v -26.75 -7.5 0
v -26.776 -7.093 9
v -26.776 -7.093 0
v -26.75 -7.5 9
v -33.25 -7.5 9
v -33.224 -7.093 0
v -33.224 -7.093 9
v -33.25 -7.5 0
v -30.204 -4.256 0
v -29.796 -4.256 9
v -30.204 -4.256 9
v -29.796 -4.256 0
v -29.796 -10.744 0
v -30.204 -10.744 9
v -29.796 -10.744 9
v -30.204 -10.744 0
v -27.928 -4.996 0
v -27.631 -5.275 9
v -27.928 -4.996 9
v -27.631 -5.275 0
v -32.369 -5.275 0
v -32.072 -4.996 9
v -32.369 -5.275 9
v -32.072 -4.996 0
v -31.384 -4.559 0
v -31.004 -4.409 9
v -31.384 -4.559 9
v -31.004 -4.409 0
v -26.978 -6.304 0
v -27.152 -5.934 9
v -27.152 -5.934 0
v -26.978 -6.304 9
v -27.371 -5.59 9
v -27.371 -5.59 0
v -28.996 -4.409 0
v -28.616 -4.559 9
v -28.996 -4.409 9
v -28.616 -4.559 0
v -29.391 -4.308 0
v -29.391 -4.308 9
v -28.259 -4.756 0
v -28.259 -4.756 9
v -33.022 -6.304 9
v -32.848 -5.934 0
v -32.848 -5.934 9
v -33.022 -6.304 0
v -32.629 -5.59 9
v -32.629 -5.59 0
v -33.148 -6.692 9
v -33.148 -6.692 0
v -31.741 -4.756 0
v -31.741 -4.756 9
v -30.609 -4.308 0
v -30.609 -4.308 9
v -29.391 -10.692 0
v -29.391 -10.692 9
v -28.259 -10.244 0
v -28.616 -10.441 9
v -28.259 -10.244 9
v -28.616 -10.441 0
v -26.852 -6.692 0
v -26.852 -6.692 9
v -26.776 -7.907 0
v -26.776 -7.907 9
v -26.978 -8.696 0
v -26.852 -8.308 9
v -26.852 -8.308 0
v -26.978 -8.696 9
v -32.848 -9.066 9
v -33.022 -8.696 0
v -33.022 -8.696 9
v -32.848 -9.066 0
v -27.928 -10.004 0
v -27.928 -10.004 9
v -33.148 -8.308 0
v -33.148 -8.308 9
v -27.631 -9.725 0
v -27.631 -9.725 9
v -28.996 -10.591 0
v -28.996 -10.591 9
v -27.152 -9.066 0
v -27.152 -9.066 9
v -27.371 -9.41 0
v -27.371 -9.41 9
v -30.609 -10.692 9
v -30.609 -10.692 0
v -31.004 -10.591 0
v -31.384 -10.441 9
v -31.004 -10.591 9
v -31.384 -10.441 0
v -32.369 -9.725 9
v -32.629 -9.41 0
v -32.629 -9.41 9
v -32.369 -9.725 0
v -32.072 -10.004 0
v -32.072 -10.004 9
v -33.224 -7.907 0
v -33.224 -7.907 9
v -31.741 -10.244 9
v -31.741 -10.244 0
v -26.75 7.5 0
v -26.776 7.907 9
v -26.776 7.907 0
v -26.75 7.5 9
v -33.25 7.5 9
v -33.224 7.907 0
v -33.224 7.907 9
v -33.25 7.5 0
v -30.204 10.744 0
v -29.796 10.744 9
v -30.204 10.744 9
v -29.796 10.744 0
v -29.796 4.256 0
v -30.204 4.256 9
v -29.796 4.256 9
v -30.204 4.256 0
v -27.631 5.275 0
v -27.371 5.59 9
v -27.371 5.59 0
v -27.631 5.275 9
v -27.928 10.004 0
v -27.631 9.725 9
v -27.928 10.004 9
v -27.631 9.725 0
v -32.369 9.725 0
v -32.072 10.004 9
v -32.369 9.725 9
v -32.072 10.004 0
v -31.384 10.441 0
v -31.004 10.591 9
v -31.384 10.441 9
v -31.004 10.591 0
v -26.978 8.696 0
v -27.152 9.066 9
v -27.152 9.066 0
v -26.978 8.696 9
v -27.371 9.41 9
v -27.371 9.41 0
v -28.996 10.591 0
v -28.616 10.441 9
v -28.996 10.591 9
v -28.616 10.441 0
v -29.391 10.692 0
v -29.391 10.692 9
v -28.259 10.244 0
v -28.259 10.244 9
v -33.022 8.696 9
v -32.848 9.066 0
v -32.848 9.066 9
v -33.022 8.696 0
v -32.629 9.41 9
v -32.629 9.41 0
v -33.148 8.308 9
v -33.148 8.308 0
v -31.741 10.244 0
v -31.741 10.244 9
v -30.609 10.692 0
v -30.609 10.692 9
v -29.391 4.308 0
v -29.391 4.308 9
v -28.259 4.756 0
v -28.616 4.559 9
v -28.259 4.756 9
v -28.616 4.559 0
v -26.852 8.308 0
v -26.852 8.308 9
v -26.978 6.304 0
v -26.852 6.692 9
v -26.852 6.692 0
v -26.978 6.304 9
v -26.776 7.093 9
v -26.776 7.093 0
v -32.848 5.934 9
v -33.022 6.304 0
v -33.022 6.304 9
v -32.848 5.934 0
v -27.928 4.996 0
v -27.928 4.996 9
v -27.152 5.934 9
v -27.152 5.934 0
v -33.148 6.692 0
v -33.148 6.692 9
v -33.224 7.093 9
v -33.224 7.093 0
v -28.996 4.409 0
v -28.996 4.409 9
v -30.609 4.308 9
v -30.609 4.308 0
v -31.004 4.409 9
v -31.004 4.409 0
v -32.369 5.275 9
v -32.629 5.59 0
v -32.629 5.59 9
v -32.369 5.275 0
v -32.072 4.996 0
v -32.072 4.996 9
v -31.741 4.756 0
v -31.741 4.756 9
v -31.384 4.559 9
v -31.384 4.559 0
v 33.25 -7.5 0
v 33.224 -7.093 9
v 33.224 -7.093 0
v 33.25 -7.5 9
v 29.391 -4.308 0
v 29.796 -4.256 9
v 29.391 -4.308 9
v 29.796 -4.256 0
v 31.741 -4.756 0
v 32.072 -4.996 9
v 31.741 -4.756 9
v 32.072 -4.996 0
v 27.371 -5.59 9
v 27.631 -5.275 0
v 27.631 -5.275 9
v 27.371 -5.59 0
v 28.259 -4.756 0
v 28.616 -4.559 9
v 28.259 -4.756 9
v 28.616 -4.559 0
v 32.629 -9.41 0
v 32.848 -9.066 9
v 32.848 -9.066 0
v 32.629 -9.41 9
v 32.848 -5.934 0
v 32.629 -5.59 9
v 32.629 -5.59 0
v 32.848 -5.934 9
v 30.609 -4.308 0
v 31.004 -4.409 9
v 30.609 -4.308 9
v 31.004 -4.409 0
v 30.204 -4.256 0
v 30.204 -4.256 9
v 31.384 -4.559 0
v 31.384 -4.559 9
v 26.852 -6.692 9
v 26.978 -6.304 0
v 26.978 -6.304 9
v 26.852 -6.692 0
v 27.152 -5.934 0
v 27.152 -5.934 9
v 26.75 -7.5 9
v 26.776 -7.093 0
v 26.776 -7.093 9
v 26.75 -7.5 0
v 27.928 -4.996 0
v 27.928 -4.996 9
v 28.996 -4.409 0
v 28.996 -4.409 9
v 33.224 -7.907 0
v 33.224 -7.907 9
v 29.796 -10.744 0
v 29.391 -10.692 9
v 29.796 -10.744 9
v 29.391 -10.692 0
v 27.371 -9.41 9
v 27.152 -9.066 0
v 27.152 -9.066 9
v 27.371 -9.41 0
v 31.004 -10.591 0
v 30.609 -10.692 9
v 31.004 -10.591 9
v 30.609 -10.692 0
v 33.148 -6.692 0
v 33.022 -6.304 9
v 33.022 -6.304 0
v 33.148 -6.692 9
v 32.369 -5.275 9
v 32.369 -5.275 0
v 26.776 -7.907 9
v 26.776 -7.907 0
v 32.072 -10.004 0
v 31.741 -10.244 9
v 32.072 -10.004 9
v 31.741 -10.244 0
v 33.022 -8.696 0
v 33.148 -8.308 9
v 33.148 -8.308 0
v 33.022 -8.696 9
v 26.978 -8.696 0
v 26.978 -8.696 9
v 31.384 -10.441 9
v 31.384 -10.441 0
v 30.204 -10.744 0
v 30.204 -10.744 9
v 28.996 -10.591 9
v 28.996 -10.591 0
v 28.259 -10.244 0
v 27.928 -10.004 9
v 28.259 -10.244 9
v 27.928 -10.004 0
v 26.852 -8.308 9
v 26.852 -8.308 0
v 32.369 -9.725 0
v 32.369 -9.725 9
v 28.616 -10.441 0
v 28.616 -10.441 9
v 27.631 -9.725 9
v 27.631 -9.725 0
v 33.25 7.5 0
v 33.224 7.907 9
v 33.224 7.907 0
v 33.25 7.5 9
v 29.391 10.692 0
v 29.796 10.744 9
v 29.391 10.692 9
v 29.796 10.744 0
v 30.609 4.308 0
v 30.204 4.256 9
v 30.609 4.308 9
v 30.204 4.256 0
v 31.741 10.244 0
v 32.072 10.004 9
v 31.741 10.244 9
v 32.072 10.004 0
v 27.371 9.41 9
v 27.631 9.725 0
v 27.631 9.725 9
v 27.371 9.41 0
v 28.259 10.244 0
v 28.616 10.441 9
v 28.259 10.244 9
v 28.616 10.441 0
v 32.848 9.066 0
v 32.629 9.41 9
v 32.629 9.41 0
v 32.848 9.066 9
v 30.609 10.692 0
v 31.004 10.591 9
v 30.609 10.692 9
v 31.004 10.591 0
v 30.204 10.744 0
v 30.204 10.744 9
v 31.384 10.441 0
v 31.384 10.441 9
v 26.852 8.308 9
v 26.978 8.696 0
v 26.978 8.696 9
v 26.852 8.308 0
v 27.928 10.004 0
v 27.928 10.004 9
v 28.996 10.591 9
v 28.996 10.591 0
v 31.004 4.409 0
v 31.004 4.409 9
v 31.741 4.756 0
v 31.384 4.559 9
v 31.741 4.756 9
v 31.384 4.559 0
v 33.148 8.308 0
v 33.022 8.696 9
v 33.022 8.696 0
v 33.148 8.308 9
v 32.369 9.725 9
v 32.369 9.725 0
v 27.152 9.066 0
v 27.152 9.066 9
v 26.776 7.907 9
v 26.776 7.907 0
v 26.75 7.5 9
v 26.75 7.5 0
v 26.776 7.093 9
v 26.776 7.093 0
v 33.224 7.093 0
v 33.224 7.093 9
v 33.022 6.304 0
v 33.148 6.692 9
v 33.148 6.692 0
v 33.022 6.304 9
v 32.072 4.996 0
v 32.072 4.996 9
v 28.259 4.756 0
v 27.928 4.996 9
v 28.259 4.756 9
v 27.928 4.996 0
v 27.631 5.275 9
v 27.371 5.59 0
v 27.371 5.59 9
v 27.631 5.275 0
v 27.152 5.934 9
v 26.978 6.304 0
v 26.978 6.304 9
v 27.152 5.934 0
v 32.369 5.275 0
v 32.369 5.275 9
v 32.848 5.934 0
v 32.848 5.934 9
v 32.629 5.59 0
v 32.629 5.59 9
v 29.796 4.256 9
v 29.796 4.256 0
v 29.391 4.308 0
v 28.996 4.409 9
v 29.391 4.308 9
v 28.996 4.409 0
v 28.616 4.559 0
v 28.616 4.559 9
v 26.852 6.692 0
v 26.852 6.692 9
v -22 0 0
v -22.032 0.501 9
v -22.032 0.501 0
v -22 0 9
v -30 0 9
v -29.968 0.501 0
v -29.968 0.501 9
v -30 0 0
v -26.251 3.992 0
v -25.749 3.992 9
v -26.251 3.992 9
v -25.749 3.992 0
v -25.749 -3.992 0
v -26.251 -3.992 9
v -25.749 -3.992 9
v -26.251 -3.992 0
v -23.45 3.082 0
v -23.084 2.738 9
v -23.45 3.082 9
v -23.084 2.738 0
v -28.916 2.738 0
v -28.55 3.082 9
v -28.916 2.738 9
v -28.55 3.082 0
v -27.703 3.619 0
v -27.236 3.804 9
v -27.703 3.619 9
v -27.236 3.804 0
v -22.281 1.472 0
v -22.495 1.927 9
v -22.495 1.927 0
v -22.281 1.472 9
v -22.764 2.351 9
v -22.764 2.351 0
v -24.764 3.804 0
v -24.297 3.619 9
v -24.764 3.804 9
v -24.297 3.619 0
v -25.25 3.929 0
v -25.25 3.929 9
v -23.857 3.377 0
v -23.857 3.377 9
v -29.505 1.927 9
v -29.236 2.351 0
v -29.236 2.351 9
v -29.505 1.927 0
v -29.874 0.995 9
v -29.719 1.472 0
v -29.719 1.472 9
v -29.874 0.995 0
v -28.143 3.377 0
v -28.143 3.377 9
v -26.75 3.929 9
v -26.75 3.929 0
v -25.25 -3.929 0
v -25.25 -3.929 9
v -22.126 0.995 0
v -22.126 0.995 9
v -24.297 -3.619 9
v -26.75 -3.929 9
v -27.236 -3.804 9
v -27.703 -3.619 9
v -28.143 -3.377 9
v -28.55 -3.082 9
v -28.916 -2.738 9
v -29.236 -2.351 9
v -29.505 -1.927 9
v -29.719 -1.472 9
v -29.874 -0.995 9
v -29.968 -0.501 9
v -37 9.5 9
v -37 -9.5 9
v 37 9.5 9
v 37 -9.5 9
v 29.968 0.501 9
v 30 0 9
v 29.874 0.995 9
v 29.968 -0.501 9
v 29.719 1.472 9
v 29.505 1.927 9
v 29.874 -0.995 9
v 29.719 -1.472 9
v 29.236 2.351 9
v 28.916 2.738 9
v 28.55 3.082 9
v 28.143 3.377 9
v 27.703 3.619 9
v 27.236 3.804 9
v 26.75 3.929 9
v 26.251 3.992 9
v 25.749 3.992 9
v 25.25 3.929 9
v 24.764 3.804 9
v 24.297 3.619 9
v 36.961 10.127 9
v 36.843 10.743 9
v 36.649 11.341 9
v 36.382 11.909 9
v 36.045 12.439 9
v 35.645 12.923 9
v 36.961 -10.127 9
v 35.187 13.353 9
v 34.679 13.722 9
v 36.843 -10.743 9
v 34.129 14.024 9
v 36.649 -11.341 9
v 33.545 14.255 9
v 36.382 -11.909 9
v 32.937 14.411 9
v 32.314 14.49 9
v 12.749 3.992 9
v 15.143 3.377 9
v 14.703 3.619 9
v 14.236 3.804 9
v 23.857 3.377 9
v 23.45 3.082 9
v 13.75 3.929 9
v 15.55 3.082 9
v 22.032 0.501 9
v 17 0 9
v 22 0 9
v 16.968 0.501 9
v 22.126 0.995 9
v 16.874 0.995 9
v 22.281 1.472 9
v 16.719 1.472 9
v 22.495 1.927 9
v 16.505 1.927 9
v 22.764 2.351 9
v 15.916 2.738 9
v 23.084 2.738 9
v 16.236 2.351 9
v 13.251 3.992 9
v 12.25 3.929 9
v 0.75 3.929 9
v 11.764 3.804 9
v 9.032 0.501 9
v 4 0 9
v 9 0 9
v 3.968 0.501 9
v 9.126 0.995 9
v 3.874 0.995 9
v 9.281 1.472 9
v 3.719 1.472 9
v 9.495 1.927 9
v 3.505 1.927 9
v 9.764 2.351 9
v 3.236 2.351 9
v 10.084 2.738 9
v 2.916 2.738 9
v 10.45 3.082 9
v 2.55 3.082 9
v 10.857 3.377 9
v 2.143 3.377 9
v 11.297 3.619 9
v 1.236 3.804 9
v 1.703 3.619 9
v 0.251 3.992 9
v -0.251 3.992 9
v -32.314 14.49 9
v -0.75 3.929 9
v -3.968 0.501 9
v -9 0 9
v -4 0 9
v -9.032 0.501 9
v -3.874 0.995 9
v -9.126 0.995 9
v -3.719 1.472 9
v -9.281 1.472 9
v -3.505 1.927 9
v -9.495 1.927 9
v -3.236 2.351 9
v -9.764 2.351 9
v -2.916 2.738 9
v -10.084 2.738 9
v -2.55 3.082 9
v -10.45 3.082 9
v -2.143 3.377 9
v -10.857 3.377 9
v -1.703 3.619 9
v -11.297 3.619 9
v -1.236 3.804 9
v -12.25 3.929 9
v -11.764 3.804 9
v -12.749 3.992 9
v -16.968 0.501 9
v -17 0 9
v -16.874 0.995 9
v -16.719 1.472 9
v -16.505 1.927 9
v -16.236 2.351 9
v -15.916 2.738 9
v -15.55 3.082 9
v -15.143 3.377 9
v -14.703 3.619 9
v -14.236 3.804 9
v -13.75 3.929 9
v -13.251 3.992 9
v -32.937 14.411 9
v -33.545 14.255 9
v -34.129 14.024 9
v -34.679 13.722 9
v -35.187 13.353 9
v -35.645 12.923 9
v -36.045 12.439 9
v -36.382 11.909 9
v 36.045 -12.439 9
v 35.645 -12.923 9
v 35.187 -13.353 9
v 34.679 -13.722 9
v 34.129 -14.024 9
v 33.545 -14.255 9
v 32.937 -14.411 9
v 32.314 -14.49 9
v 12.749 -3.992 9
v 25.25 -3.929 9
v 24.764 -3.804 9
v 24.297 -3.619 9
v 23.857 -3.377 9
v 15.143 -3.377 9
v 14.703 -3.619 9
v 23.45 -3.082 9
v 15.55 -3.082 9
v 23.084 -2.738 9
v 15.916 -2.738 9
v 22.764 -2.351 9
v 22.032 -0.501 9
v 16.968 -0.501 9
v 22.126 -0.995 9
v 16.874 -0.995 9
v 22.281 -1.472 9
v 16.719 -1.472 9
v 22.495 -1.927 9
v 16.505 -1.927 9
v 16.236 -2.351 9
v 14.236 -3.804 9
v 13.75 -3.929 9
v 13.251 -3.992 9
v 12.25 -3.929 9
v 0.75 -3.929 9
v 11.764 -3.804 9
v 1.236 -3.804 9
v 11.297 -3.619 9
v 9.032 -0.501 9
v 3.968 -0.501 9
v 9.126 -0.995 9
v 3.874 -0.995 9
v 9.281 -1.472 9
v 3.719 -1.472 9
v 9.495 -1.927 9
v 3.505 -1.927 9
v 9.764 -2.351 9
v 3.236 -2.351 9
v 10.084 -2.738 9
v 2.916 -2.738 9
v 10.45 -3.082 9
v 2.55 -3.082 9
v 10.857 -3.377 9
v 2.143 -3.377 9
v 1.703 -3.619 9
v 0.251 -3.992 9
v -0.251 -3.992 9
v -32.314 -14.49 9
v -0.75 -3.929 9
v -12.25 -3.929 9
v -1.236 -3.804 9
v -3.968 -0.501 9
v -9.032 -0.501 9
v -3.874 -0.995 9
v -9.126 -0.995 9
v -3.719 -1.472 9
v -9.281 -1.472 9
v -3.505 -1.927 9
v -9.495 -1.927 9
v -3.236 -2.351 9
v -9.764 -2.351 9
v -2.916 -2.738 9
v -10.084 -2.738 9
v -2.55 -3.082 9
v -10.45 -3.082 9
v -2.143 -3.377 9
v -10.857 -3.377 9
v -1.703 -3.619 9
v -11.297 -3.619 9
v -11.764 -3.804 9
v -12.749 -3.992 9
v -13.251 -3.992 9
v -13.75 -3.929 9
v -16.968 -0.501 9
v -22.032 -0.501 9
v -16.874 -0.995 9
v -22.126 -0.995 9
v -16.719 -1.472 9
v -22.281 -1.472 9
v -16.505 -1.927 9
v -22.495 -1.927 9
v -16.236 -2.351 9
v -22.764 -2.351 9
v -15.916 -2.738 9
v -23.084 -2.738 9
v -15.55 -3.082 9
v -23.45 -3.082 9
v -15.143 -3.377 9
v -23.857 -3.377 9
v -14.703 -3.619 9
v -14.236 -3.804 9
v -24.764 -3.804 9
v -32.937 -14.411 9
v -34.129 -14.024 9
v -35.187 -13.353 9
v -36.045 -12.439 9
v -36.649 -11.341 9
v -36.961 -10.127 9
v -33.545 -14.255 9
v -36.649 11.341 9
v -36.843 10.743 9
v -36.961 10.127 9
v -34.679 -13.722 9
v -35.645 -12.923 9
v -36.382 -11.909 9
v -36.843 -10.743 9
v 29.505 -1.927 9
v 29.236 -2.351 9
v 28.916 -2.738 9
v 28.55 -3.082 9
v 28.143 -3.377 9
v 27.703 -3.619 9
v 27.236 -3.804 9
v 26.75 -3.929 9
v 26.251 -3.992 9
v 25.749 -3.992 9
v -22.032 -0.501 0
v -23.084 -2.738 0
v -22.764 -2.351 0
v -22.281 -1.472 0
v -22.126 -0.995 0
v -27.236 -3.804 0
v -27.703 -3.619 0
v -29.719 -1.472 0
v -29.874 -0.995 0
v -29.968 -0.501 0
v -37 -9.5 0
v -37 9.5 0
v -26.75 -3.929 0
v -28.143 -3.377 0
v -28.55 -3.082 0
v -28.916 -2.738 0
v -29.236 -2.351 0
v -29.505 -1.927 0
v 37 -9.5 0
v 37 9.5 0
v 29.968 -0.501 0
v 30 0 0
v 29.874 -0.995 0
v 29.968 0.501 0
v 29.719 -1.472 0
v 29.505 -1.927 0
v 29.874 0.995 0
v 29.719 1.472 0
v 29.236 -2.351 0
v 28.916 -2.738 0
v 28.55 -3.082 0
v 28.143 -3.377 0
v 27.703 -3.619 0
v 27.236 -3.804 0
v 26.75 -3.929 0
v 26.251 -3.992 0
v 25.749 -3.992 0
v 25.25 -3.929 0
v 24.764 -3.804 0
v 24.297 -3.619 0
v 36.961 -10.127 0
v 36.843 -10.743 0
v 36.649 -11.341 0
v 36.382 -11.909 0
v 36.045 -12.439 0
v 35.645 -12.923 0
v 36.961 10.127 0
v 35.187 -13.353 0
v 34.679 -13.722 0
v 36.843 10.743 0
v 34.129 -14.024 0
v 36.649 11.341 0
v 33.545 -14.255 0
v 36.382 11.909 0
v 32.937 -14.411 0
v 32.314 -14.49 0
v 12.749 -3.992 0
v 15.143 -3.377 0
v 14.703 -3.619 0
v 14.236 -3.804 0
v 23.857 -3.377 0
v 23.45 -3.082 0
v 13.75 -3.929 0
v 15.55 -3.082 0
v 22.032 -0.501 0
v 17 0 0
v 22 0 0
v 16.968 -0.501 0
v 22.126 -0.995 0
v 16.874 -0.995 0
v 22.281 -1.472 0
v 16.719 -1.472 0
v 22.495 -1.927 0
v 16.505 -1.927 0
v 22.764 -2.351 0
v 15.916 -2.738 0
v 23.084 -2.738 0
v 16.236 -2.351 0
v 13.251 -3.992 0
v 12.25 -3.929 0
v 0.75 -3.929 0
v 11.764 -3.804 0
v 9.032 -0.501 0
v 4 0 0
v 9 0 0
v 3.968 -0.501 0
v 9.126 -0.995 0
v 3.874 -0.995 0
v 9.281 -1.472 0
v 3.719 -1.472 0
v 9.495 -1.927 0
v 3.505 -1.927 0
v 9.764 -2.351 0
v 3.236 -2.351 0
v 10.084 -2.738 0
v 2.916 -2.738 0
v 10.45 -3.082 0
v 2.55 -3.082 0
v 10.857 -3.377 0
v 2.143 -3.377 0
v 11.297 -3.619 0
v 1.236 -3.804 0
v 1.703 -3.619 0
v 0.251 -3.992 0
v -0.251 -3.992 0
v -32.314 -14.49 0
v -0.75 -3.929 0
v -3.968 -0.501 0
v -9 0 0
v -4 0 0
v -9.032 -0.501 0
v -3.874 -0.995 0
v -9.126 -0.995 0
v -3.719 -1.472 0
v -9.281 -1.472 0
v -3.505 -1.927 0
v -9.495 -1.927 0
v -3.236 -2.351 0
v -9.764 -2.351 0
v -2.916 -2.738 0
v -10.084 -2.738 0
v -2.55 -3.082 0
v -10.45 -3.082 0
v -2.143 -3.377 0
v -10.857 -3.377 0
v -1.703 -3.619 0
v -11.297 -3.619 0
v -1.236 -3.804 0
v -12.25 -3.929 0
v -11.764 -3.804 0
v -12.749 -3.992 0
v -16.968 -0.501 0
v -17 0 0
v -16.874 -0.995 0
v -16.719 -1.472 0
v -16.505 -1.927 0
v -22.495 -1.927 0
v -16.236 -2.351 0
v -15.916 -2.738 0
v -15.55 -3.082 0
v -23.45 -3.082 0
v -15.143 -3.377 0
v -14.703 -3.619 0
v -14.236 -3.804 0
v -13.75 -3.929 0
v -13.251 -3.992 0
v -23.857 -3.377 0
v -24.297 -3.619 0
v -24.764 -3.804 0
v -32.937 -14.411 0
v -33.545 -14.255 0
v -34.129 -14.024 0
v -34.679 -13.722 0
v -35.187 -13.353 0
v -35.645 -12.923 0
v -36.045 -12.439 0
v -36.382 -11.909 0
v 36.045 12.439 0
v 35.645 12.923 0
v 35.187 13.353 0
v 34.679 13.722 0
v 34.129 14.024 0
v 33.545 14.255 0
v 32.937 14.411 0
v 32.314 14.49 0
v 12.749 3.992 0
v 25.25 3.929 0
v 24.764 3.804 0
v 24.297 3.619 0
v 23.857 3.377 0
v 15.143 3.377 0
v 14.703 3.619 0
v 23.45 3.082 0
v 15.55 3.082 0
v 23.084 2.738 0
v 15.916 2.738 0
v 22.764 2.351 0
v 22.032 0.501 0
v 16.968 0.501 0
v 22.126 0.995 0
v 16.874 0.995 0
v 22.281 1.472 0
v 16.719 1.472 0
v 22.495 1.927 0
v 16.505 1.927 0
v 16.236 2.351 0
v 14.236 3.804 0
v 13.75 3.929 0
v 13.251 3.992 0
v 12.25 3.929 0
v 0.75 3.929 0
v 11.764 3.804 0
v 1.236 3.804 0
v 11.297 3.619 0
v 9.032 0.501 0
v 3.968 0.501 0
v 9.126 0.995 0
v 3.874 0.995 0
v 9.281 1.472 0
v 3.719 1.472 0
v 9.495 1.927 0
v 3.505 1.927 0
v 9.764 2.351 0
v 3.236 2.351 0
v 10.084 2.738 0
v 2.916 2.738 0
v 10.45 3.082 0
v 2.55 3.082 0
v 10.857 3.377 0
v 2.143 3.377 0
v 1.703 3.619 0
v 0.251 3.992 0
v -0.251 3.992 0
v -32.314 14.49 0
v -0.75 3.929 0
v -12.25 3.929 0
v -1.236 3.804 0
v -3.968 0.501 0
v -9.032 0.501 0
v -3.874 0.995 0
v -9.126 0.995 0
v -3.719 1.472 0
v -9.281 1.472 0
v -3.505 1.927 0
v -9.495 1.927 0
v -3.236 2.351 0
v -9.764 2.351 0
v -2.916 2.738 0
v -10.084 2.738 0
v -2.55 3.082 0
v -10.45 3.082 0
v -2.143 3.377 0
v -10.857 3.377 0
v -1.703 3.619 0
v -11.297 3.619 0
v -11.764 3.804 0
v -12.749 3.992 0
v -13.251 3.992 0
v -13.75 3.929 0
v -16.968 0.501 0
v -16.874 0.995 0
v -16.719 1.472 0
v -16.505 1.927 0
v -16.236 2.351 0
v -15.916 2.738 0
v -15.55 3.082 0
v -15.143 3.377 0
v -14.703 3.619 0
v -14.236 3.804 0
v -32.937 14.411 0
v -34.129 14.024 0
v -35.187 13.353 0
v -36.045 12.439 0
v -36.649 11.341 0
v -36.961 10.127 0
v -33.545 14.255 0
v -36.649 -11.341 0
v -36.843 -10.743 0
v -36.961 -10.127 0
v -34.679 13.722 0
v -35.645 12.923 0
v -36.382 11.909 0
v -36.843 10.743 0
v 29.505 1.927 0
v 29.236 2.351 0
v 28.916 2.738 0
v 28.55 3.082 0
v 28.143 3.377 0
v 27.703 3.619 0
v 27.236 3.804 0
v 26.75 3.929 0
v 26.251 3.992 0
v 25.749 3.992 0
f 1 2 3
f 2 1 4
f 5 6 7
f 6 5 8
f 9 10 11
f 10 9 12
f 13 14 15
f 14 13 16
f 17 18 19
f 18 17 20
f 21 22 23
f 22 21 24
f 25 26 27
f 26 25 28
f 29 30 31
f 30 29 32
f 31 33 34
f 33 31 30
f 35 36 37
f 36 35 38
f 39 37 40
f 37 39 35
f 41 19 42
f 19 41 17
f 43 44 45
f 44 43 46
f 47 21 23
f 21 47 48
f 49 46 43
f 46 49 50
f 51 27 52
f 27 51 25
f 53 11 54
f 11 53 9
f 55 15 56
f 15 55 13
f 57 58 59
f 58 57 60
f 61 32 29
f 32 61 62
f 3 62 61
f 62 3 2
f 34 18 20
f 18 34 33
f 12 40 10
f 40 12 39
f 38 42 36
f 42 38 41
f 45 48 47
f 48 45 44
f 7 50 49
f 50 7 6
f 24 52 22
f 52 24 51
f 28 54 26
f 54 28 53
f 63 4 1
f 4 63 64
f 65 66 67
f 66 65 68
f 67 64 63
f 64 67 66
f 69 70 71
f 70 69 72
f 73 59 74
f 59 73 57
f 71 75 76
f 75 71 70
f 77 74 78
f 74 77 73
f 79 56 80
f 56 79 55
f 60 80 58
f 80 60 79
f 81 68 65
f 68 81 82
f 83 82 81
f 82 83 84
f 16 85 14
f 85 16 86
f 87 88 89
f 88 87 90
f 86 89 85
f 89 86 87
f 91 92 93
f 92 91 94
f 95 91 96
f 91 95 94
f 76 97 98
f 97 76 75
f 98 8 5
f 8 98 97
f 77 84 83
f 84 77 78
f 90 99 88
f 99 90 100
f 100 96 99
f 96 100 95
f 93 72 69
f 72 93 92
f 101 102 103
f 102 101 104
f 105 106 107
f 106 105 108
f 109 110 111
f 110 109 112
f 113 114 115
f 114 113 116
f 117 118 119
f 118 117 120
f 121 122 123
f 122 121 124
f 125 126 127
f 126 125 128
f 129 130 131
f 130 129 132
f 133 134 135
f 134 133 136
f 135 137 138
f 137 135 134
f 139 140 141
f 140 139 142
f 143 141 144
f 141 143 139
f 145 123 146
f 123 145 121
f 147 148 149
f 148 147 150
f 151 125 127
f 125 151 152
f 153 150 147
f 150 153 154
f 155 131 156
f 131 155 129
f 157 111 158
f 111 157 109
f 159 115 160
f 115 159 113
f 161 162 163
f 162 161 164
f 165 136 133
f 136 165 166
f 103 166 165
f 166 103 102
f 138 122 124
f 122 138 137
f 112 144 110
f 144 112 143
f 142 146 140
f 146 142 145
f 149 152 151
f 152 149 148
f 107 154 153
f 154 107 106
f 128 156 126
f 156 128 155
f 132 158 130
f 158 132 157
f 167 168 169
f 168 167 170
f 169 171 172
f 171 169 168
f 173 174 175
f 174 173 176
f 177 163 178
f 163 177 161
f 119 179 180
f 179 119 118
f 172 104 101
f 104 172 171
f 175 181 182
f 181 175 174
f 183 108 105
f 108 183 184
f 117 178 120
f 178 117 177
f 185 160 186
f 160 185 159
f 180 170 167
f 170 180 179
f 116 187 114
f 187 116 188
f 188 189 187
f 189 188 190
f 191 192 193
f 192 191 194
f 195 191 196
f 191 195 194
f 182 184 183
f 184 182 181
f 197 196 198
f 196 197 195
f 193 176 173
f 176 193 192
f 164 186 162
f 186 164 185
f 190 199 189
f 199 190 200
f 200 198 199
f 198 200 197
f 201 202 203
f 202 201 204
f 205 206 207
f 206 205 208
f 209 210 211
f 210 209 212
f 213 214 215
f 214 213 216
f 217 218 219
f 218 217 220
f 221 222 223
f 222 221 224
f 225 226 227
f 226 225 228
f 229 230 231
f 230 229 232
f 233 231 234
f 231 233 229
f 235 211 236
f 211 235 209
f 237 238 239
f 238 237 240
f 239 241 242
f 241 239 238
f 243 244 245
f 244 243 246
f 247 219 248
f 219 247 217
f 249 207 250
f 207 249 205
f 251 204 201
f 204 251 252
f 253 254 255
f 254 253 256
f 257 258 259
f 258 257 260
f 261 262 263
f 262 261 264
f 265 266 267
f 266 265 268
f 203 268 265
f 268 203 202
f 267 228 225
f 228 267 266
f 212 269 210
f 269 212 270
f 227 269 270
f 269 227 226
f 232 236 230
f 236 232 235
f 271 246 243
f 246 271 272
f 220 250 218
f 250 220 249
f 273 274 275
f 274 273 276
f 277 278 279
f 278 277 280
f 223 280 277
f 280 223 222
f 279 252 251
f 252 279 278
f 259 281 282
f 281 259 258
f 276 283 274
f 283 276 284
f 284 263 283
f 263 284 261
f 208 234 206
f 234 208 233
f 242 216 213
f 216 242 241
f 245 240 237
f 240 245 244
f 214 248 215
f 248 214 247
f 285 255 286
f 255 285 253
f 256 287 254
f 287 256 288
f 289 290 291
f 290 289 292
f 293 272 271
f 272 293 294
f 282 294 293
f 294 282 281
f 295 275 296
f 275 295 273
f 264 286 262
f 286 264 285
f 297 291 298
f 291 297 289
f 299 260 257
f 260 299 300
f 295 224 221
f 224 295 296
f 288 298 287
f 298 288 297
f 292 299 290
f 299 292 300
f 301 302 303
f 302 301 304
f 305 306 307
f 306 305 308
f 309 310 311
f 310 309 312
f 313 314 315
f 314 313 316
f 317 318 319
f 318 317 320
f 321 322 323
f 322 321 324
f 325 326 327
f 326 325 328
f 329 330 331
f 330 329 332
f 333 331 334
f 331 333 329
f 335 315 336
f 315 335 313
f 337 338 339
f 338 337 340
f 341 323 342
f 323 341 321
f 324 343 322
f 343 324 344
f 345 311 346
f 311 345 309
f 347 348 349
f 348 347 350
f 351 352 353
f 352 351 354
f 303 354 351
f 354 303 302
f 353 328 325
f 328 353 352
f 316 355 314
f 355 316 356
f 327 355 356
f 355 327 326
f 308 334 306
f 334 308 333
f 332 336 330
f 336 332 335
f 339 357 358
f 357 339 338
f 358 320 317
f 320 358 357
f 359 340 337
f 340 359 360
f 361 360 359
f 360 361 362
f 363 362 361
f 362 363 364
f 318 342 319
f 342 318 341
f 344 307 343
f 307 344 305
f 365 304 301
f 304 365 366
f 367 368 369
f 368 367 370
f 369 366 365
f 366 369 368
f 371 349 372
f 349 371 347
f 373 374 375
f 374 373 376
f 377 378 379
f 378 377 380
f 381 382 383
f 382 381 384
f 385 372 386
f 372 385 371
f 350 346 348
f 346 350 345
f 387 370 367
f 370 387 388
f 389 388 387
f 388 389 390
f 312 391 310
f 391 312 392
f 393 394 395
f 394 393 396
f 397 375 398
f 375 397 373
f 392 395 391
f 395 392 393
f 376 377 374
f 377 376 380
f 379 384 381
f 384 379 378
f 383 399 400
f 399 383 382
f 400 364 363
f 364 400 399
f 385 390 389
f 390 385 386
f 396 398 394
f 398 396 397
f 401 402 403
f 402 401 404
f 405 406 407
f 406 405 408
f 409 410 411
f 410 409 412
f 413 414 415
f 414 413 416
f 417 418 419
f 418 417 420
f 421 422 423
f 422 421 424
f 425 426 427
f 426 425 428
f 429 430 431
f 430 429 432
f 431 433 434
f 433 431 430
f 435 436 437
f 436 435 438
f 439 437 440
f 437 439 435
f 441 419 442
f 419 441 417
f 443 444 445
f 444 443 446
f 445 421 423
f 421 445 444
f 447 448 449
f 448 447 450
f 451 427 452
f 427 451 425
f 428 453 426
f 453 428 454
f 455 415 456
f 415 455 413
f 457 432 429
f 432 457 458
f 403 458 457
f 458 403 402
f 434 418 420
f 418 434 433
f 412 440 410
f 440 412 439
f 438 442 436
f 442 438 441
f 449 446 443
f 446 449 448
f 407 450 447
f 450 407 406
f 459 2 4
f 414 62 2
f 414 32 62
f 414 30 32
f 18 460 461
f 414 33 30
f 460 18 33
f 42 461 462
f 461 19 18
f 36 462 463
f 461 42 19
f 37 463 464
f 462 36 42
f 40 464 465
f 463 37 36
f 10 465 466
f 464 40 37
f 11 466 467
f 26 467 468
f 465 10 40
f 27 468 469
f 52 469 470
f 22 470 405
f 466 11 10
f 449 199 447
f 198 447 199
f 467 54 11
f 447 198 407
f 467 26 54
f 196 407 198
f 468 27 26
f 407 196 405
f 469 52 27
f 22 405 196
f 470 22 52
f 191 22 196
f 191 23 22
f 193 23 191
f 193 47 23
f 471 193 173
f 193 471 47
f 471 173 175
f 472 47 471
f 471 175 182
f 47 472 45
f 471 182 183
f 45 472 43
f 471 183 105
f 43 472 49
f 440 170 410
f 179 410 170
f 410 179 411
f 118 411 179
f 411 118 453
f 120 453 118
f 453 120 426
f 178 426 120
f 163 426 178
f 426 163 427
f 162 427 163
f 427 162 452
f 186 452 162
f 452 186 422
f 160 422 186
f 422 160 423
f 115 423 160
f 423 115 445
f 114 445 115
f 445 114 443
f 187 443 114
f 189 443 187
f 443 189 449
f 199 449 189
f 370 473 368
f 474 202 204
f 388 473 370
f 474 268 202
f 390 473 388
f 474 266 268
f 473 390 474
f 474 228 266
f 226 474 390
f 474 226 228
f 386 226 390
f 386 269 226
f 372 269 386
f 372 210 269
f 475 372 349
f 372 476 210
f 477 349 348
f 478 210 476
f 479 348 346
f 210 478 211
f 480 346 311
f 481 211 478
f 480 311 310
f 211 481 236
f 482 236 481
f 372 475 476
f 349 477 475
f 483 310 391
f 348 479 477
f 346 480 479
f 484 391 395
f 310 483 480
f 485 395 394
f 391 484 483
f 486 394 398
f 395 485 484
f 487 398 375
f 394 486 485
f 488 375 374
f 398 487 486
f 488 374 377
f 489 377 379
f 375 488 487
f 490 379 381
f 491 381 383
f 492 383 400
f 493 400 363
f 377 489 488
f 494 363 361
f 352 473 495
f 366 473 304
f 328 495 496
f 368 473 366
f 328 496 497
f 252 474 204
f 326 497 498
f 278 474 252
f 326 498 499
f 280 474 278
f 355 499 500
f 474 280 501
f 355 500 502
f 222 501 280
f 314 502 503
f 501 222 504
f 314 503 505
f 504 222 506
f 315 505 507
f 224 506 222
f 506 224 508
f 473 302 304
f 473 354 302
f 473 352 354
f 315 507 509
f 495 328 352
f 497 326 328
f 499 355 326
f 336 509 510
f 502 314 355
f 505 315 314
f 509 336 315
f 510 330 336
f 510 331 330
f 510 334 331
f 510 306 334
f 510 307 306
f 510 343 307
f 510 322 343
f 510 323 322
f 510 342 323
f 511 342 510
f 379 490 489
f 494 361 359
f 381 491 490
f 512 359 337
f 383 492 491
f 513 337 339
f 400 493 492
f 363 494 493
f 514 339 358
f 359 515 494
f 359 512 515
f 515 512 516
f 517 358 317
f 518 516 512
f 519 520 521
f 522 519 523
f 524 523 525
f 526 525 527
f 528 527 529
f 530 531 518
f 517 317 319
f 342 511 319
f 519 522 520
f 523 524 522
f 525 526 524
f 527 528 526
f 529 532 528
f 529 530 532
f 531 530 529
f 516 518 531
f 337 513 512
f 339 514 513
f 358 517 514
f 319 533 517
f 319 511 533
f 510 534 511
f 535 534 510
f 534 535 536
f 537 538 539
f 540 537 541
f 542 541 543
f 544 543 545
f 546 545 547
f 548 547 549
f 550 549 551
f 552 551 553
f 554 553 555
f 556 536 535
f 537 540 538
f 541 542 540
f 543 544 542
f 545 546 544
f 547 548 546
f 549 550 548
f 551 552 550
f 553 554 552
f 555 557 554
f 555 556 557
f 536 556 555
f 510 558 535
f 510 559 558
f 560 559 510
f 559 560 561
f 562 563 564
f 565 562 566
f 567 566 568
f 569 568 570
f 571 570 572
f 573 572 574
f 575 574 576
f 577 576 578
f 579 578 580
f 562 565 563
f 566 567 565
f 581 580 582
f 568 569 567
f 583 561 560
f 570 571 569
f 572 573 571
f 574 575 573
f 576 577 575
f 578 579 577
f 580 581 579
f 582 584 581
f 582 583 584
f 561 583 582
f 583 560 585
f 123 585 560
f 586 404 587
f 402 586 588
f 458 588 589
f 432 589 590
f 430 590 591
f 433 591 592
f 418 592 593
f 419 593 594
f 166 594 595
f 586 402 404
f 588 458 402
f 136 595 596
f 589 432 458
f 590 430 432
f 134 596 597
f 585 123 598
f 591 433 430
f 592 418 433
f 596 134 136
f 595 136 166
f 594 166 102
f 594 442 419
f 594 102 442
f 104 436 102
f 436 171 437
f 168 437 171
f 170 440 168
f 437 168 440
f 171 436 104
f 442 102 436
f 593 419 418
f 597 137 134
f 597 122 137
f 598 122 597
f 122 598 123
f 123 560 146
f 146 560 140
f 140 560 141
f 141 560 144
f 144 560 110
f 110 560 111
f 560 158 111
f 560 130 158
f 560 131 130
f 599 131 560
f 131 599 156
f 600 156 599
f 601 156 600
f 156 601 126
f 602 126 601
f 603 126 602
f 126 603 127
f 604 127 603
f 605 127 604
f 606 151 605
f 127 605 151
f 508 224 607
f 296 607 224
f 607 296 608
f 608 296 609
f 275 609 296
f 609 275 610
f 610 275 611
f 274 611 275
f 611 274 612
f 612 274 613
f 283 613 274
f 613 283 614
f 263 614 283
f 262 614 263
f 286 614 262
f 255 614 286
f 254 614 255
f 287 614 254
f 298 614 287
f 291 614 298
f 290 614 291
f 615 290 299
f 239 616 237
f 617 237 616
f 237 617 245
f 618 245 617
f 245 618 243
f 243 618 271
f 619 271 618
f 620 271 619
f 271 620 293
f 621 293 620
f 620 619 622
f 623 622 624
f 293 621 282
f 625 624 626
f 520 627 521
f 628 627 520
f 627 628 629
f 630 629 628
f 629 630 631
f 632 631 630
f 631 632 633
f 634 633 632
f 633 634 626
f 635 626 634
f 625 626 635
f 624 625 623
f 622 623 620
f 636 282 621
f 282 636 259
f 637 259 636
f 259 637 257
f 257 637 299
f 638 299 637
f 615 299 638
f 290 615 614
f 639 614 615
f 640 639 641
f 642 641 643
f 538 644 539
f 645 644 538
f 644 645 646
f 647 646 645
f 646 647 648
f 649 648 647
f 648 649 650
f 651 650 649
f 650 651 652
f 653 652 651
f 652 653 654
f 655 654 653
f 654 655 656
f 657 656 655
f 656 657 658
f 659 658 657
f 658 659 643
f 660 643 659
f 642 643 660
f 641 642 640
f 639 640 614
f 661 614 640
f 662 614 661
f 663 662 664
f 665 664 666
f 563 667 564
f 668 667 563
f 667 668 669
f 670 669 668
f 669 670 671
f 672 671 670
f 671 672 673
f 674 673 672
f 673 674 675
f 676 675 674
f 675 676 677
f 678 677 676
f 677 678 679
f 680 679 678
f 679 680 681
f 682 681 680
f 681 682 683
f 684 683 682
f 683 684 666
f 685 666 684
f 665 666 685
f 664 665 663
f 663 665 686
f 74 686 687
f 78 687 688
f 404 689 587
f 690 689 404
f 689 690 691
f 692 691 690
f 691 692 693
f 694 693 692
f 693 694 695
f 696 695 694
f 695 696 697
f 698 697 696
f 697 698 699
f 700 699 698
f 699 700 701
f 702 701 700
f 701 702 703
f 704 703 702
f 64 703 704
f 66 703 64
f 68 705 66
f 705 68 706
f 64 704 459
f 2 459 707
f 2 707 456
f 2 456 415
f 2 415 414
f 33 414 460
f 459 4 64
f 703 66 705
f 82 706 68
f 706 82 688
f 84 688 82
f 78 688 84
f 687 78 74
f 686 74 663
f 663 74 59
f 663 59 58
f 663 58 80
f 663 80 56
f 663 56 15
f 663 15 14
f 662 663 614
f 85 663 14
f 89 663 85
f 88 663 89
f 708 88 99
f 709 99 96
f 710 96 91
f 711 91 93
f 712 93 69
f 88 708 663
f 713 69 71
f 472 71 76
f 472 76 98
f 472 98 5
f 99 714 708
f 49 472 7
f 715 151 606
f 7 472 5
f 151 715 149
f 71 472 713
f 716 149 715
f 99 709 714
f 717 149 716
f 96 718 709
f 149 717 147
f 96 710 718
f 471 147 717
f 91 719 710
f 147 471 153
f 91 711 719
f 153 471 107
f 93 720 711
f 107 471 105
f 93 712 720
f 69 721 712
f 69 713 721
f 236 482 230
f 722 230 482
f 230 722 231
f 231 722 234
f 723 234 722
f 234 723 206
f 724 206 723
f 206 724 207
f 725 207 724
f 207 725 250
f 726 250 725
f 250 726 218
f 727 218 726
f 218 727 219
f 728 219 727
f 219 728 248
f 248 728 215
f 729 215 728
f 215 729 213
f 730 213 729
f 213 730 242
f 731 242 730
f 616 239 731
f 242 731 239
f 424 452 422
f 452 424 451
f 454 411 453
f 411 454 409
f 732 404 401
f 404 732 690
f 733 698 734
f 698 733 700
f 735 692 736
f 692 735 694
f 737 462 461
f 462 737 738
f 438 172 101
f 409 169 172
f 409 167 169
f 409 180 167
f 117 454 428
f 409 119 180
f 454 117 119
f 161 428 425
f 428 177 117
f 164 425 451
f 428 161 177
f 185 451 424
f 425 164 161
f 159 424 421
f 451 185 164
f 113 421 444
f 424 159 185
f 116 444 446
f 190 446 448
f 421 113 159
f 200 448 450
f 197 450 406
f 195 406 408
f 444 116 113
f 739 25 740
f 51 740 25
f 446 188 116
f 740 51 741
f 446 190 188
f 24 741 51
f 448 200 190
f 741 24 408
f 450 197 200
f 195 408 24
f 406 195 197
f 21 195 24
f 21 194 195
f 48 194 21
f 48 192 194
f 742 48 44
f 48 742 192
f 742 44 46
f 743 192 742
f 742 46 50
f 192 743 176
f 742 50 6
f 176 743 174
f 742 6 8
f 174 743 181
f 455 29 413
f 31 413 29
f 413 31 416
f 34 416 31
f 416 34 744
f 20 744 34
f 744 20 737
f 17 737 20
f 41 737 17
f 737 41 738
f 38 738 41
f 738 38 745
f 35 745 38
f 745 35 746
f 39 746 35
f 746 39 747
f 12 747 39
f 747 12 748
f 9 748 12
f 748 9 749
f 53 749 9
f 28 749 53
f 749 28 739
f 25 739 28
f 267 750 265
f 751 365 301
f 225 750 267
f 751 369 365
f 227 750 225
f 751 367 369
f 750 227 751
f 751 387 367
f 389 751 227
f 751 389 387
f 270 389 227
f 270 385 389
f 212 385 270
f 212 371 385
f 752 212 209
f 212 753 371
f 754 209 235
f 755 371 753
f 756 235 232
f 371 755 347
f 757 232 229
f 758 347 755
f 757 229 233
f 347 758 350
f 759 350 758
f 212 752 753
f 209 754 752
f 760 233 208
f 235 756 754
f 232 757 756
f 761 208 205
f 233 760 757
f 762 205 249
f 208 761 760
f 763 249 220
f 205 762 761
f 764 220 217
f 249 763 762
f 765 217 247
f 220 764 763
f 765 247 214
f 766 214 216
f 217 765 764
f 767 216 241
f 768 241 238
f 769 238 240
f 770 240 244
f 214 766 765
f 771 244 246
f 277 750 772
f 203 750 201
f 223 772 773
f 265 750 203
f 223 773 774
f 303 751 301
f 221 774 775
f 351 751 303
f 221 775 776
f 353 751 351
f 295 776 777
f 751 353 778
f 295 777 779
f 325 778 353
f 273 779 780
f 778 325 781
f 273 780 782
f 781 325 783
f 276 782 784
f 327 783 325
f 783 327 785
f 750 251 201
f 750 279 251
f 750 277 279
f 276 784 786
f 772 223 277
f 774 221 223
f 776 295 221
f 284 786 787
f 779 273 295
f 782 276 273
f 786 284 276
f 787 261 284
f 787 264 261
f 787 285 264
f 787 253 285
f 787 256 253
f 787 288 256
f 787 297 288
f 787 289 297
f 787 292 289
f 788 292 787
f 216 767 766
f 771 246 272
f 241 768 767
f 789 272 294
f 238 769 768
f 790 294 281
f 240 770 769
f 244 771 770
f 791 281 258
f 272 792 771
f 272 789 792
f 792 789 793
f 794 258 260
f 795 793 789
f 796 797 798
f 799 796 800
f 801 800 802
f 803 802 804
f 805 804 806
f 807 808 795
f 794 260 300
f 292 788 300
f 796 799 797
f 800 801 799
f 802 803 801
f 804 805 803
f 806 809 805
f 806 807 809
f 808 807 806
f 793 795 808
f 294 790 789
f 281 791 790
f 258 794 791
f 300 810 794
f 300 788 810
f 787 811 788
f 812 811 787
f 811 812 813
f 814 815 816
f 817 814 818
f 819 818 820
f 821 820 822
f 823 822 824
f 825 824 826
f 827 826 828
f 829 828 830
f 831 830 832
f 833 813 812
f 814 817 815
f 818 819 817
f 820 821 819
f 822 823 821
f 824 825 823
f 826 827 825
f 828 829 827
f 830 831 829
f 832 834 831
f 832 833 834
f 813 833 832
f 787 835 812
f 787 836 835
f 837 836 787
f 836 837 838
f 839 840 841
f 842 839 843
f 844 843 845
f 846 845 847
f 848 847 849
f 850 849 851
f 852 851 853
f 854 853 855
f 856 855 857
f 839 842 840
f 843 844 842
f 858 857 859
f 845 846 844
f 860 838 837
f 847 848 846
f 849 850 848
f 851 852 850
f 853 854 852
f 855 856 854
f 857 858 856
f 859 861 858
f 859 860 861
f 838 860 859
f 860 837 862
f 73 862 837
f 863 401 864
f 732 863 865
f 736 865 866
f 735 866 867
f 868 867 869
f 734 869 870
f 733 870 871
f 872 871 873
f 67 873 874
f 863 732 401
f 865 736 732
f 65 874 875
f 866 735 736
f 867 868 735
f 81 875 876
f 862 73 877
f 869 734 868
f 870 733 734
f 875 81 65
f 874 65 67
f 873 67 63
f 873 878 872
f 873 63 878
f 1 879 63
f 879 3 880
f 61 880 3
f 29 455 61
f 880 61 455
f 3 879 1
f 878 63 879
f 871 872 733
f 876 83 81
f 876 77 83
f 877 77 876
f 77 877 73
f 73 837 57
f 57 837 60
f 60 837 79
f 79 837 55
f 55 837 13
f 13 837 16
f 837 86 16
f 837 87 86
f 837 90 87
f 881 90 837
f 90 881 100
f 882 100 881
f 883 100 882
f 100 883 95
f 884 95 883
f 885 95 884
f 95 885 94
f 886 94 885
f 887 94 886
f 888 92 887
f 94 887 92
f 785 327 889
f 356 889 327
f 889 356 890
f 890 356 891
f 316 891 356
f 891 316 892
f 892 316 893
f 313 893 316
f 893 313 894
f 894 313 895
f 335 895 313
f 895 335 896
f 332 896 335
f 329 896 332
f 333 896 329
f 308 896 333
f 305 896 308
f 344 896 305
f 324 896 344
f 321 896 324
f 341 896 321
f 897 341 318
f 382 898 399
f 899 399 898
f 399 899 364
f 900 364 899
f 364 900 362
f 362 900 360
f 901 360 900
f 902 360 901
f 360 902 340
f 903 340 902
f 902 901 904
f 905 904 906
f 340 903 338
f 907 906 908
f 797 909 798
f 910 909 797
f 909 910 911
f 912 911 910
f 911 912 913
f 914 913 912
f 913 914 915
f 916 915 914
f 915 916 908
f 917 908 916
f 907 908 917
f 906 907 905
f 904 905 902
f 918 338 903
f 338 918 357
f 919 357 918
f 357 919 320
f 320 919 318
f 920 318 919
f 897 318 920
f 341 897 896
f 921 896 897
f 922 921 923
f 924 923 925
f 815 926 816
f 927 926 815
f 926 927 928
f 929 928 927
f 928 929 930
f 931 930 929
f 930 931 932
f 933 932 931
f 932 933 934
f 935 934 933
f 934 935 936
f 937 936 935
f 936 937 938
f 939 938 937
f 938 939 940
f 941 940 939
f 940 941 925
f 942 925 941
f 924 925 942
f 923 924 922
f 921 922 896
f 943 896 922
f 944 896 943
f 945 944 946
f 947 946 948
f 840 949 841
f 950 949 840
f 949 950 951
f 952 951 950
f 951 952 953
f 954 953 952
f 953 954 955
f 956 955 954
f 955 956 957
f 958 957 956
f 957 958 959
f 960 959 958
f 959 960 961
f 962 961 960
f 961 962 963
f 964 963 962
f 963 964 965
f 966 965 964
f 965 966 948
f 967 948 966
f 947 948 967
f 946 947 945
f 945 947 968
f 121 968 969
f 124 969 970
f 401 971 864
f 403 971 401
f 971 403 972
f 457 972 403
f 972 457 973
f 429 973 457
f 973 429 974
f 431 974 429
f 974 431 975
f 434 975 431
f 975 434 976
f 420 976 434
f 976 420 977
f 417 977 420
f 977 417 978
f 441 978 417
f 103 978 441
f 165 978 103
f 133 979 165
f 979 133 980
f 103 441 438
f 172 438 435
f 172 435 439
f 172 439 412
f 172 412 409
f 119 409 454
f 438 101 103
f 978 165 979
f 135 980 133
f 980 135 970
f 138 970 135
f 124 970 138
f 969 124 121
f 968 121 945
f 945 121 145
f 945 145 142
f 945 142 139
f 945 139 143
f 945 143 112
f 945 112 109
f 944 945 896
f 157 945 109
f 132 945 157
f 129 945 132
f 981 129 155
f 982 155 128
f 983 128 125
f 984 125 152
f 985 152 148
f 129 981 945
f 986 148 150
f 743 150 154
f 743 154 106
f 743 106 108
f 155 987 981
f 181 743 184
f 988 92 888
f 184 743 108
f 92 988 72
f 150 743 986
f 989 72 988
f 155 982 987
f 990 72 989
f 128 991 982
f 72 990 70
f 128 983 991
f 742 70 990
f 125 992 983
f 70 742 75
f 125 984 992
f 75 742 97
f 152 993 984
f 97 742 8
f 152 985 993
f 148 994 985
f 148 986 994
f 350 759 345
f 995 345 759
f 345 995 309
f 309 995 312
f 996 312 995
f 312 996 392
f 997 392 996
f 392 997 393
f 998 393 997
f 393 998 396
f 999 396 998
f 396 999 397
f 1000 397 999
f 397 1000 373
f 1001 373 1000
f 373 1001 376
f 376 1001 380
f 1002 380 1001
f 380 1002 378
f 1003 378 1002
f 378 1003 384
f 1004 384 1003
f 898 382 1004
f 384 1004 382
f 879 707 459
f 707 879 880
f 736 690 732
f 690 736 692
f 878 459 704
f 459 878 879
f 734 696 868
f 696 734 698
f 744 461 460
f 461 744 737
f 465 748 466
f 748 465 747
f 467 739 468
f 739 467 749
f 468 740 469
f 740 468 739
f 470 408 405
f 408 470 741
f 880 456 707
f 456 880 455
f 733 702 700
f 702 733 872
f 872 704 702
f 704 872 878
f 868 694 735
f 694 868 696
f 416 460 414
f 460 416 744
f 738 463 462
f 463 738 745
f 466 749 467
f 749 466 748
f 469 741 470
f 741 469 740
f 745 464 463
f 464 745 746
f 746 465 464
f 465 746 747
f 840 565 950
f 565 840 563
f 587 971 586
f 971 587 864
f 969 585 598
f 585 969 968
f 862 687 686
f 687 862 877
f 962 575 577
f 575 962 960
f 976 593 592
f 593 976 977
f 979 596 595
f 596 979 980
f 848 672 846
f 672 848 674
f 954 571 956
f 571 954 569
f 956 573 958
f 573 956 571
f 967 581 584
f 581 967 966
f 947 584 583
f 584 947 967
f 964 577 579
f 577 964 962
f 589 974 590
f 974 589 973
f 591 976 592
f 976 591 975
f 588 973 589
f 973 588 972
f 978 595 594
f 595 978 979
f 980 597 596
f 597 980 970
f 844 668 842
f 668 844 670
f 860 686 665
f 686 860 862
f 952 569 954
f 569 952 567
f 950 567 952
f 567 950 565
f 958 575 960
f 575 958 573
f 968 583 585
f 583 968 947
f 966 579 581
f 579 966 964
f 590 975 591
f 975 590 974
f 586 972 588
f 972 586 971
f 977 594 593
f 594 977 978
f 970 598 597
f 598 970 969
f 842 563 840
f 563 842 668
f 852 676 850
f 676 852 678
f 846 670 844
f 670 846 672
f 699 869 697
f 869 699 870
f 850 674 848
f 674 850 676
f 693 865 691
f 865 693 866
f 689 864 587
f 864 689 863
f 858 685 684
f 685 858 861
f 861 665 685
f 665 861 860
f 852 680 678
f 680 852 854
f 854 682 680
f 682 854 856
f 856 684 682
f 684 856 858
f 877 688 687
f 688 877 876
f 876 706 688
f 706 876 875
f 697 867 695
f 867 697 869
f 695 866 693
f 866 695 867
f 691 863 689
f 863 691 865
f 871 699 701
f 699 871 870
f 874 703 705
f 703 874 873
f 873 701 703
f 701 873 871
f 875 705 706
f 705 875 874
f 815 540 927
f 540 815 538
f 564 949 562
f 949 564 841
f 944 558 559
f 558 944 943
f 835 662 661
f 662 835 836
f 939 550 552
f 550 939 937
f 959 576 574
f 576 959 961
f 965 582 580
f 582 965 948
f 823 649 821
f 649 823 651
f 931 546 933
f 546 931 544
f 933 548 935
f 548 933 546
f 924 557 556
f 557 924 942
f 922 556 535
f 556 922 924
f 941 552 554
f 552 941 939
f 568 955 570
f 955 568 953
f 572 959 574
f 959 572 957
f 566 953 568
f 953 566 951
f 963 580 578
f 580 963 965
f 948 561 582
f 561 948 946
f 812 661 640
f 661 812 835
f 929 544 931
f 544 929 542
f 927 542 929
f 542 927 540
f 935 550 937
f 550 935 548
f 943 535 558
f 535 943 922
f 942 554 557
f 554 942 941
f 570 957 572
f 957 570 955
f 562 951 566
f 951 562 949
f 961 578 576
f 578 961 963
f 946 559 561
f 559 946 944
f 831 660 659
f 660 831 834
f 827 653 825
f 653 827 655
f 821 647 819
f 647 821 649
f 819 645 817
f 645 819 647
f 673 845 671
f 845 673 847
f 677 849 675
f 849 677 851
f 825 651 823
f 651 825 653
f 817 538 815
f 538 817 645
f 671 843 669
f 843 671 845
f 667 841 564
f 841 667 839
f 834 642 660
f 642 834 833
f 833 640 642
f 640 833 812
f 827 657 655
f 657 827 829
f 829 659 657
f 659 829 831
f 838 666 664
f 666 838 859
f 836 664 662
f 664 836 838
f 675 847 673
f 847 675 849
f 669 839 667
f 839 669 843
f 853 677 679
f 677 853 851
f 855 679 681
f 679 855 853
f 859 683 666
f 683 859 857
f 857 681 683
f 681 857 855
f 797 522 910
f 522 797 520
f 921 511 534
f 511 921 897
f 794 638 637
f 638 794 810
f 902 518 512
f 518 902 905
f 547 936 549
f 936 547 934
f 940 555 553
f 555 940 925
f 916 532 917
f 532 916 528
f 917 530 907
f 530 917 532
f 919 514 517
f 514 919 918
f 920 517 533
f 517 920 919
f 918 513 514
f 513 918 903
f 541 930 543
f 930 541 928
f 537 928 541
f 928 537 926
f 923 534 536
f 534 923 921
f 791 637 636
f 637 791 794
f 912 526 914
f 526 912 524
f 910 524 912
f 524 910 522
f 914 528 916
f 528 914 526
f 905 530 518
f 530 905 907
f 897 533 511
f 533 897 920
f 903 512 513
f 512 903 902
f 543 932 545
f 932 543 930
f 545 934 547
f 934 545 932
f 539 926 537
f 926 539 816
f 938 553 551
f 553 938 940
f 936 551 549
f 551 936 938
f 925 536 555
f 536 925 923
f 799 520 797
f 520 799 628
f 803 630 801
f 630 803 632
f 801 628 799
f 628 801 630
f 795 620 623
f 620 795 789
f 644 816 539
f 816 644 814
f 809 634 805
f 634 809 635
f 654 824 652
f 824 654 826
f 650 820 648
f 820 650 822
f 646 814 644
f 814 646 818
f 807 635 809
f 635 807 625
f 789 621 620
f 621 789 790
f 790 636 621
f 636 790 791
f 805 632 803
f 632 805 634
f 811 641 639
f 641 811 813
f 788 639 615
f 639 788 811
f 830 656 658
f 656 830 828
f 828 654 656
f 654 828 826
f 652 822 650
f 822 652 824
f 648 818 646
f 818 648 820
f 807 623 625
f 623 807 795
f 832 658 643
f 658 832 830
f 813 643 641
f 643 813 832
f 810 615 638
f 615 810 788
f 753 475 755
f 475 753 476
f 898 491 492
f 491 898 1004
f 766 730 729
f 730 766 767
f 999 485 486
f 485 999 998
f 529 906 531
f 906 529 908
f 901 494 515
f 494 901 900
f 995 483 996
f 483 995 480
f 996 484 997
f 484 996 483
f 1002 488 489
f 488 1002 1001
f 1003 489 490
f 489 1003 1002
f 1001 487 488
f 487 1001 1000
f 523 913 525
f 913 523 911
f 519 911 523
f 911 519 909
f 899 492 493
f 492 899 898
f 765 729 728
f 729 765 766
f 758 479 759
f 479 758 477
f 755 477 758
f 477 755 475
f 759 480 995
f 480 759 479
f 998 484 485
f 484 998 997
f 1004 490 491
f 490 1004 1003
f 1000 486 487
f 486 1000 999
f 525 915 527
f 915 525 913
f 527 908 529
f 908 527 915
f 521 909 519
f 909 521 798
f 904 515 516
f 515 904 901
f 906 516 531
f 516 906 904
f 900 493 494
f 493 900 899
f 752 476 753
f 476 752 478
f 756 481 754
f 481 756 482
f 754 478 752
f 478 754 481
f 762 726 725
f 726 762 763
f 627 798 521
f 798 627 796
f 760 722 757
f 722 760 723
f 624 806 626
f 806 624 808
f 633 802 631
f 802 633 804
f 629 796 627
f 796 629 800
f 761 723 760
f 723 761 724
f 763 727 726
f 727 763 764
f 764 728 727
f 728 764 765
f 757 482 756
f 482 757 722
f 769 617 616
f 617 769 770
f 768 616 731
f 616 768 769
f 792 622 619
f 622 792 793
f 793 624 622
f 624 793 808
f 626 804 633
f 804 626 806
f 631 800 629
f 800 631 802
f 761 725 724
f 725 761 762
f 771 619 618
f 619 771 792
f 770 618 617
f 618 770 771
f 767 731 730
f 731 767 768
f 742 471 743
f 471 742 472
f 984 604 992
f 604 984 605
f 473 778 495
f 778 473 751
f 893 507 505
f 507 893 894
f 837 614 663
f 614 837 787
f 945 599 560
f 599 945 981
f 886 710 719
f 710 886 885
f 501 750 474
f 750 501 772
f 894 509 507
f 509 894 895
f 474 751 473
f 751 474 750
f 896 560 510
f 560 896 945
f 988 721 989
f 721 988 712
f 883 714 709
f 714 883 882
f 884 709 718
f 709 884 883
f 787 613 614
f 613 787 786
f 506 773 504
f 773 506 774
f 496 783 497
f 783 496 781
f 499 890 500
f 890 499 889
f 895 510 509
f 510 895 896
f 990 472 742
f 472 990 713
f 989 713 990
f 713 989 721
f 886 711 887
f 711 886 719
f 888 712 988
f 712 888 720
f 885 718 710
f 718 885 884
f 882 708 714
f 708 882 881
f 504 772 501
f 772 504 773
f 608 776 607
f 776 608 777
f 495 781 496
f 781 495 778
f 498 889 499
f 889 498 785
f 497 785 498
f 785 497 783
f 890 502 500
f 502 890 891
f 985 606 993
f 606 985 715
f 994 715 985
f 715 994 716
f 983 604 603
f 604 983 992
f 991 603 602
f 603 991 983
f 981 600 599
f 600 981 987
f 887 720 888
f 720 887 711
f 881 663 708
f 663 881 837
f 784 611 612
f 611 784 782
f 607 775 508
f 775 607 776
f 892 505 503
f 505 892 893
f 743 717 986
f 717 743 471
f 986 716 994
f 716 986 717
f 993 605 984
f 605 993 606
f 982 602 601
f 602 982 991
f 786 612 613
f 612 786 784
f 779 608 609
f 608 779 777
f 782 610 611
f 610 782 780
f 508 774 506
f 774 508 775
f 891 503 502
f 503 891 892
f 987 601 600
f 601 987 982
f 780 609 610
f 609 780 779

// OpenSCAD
$fn = 50;


difference() {
	union() {
		hull() {
			translate(v = [-32.0000000000, 9.5000000000, 0]) {
				cylinder(h = 9, r = 5);
			}
			translate(v = [32.0000000000, 9.5000000000, 0]) {
				cylinder(h = 9, r = 5);
			}
			translate(v = [-32.0000000000, -9.5000000000, 0]) {
				cylinder(h = 9, r = 5);
			}
			translate(v = [32.0000000000, -9.5000000000, 0]) {
				cylinder(h = 9, r = 5);
			}
		}
	}
	union() {
		#translate(v = [-30.0000000000, -7.5000000000, -100.0000000000]) {
			cylinder(h = 200, r = 3.2500000000);
		}
		#translate(v = [-30.0000000000, 7.5000000000, -100.0000000000]) {
			cylinder(h = 200, r = 3.2500000000);
		}
		#translate(v = [30.0000000000, -7.5000000000, -100.0000000000]) {
			cylinder(h = 200, r = 3.2500000000);
		}
		#translate(v = [30.0000000000, 7.5000000000, -100.0000000000]) {
			cylinder(h = 200, r = 3.2500000000);
		}
		#translate(v = [-26.0000000000, 0, 0]) {
			cylinder(h = 9, r = 4.0000000000);
		}
		#translate(v = [-13.0000000000, 0, 0]) {
			cylinder(h = 9, r = 4.0000000000);
		}
		#cylinder(h = 9, r = 4.0000000000);
		#translate(v = [13.0000000000, 0, 0]) {
			cylinder(h = 9, r = 4.0000000000);
		}
		#translate(v = [26.0000000000, 0, 0]) {
			cylinder(h = 9, r = 4.0000000000);
		}
	}
}
